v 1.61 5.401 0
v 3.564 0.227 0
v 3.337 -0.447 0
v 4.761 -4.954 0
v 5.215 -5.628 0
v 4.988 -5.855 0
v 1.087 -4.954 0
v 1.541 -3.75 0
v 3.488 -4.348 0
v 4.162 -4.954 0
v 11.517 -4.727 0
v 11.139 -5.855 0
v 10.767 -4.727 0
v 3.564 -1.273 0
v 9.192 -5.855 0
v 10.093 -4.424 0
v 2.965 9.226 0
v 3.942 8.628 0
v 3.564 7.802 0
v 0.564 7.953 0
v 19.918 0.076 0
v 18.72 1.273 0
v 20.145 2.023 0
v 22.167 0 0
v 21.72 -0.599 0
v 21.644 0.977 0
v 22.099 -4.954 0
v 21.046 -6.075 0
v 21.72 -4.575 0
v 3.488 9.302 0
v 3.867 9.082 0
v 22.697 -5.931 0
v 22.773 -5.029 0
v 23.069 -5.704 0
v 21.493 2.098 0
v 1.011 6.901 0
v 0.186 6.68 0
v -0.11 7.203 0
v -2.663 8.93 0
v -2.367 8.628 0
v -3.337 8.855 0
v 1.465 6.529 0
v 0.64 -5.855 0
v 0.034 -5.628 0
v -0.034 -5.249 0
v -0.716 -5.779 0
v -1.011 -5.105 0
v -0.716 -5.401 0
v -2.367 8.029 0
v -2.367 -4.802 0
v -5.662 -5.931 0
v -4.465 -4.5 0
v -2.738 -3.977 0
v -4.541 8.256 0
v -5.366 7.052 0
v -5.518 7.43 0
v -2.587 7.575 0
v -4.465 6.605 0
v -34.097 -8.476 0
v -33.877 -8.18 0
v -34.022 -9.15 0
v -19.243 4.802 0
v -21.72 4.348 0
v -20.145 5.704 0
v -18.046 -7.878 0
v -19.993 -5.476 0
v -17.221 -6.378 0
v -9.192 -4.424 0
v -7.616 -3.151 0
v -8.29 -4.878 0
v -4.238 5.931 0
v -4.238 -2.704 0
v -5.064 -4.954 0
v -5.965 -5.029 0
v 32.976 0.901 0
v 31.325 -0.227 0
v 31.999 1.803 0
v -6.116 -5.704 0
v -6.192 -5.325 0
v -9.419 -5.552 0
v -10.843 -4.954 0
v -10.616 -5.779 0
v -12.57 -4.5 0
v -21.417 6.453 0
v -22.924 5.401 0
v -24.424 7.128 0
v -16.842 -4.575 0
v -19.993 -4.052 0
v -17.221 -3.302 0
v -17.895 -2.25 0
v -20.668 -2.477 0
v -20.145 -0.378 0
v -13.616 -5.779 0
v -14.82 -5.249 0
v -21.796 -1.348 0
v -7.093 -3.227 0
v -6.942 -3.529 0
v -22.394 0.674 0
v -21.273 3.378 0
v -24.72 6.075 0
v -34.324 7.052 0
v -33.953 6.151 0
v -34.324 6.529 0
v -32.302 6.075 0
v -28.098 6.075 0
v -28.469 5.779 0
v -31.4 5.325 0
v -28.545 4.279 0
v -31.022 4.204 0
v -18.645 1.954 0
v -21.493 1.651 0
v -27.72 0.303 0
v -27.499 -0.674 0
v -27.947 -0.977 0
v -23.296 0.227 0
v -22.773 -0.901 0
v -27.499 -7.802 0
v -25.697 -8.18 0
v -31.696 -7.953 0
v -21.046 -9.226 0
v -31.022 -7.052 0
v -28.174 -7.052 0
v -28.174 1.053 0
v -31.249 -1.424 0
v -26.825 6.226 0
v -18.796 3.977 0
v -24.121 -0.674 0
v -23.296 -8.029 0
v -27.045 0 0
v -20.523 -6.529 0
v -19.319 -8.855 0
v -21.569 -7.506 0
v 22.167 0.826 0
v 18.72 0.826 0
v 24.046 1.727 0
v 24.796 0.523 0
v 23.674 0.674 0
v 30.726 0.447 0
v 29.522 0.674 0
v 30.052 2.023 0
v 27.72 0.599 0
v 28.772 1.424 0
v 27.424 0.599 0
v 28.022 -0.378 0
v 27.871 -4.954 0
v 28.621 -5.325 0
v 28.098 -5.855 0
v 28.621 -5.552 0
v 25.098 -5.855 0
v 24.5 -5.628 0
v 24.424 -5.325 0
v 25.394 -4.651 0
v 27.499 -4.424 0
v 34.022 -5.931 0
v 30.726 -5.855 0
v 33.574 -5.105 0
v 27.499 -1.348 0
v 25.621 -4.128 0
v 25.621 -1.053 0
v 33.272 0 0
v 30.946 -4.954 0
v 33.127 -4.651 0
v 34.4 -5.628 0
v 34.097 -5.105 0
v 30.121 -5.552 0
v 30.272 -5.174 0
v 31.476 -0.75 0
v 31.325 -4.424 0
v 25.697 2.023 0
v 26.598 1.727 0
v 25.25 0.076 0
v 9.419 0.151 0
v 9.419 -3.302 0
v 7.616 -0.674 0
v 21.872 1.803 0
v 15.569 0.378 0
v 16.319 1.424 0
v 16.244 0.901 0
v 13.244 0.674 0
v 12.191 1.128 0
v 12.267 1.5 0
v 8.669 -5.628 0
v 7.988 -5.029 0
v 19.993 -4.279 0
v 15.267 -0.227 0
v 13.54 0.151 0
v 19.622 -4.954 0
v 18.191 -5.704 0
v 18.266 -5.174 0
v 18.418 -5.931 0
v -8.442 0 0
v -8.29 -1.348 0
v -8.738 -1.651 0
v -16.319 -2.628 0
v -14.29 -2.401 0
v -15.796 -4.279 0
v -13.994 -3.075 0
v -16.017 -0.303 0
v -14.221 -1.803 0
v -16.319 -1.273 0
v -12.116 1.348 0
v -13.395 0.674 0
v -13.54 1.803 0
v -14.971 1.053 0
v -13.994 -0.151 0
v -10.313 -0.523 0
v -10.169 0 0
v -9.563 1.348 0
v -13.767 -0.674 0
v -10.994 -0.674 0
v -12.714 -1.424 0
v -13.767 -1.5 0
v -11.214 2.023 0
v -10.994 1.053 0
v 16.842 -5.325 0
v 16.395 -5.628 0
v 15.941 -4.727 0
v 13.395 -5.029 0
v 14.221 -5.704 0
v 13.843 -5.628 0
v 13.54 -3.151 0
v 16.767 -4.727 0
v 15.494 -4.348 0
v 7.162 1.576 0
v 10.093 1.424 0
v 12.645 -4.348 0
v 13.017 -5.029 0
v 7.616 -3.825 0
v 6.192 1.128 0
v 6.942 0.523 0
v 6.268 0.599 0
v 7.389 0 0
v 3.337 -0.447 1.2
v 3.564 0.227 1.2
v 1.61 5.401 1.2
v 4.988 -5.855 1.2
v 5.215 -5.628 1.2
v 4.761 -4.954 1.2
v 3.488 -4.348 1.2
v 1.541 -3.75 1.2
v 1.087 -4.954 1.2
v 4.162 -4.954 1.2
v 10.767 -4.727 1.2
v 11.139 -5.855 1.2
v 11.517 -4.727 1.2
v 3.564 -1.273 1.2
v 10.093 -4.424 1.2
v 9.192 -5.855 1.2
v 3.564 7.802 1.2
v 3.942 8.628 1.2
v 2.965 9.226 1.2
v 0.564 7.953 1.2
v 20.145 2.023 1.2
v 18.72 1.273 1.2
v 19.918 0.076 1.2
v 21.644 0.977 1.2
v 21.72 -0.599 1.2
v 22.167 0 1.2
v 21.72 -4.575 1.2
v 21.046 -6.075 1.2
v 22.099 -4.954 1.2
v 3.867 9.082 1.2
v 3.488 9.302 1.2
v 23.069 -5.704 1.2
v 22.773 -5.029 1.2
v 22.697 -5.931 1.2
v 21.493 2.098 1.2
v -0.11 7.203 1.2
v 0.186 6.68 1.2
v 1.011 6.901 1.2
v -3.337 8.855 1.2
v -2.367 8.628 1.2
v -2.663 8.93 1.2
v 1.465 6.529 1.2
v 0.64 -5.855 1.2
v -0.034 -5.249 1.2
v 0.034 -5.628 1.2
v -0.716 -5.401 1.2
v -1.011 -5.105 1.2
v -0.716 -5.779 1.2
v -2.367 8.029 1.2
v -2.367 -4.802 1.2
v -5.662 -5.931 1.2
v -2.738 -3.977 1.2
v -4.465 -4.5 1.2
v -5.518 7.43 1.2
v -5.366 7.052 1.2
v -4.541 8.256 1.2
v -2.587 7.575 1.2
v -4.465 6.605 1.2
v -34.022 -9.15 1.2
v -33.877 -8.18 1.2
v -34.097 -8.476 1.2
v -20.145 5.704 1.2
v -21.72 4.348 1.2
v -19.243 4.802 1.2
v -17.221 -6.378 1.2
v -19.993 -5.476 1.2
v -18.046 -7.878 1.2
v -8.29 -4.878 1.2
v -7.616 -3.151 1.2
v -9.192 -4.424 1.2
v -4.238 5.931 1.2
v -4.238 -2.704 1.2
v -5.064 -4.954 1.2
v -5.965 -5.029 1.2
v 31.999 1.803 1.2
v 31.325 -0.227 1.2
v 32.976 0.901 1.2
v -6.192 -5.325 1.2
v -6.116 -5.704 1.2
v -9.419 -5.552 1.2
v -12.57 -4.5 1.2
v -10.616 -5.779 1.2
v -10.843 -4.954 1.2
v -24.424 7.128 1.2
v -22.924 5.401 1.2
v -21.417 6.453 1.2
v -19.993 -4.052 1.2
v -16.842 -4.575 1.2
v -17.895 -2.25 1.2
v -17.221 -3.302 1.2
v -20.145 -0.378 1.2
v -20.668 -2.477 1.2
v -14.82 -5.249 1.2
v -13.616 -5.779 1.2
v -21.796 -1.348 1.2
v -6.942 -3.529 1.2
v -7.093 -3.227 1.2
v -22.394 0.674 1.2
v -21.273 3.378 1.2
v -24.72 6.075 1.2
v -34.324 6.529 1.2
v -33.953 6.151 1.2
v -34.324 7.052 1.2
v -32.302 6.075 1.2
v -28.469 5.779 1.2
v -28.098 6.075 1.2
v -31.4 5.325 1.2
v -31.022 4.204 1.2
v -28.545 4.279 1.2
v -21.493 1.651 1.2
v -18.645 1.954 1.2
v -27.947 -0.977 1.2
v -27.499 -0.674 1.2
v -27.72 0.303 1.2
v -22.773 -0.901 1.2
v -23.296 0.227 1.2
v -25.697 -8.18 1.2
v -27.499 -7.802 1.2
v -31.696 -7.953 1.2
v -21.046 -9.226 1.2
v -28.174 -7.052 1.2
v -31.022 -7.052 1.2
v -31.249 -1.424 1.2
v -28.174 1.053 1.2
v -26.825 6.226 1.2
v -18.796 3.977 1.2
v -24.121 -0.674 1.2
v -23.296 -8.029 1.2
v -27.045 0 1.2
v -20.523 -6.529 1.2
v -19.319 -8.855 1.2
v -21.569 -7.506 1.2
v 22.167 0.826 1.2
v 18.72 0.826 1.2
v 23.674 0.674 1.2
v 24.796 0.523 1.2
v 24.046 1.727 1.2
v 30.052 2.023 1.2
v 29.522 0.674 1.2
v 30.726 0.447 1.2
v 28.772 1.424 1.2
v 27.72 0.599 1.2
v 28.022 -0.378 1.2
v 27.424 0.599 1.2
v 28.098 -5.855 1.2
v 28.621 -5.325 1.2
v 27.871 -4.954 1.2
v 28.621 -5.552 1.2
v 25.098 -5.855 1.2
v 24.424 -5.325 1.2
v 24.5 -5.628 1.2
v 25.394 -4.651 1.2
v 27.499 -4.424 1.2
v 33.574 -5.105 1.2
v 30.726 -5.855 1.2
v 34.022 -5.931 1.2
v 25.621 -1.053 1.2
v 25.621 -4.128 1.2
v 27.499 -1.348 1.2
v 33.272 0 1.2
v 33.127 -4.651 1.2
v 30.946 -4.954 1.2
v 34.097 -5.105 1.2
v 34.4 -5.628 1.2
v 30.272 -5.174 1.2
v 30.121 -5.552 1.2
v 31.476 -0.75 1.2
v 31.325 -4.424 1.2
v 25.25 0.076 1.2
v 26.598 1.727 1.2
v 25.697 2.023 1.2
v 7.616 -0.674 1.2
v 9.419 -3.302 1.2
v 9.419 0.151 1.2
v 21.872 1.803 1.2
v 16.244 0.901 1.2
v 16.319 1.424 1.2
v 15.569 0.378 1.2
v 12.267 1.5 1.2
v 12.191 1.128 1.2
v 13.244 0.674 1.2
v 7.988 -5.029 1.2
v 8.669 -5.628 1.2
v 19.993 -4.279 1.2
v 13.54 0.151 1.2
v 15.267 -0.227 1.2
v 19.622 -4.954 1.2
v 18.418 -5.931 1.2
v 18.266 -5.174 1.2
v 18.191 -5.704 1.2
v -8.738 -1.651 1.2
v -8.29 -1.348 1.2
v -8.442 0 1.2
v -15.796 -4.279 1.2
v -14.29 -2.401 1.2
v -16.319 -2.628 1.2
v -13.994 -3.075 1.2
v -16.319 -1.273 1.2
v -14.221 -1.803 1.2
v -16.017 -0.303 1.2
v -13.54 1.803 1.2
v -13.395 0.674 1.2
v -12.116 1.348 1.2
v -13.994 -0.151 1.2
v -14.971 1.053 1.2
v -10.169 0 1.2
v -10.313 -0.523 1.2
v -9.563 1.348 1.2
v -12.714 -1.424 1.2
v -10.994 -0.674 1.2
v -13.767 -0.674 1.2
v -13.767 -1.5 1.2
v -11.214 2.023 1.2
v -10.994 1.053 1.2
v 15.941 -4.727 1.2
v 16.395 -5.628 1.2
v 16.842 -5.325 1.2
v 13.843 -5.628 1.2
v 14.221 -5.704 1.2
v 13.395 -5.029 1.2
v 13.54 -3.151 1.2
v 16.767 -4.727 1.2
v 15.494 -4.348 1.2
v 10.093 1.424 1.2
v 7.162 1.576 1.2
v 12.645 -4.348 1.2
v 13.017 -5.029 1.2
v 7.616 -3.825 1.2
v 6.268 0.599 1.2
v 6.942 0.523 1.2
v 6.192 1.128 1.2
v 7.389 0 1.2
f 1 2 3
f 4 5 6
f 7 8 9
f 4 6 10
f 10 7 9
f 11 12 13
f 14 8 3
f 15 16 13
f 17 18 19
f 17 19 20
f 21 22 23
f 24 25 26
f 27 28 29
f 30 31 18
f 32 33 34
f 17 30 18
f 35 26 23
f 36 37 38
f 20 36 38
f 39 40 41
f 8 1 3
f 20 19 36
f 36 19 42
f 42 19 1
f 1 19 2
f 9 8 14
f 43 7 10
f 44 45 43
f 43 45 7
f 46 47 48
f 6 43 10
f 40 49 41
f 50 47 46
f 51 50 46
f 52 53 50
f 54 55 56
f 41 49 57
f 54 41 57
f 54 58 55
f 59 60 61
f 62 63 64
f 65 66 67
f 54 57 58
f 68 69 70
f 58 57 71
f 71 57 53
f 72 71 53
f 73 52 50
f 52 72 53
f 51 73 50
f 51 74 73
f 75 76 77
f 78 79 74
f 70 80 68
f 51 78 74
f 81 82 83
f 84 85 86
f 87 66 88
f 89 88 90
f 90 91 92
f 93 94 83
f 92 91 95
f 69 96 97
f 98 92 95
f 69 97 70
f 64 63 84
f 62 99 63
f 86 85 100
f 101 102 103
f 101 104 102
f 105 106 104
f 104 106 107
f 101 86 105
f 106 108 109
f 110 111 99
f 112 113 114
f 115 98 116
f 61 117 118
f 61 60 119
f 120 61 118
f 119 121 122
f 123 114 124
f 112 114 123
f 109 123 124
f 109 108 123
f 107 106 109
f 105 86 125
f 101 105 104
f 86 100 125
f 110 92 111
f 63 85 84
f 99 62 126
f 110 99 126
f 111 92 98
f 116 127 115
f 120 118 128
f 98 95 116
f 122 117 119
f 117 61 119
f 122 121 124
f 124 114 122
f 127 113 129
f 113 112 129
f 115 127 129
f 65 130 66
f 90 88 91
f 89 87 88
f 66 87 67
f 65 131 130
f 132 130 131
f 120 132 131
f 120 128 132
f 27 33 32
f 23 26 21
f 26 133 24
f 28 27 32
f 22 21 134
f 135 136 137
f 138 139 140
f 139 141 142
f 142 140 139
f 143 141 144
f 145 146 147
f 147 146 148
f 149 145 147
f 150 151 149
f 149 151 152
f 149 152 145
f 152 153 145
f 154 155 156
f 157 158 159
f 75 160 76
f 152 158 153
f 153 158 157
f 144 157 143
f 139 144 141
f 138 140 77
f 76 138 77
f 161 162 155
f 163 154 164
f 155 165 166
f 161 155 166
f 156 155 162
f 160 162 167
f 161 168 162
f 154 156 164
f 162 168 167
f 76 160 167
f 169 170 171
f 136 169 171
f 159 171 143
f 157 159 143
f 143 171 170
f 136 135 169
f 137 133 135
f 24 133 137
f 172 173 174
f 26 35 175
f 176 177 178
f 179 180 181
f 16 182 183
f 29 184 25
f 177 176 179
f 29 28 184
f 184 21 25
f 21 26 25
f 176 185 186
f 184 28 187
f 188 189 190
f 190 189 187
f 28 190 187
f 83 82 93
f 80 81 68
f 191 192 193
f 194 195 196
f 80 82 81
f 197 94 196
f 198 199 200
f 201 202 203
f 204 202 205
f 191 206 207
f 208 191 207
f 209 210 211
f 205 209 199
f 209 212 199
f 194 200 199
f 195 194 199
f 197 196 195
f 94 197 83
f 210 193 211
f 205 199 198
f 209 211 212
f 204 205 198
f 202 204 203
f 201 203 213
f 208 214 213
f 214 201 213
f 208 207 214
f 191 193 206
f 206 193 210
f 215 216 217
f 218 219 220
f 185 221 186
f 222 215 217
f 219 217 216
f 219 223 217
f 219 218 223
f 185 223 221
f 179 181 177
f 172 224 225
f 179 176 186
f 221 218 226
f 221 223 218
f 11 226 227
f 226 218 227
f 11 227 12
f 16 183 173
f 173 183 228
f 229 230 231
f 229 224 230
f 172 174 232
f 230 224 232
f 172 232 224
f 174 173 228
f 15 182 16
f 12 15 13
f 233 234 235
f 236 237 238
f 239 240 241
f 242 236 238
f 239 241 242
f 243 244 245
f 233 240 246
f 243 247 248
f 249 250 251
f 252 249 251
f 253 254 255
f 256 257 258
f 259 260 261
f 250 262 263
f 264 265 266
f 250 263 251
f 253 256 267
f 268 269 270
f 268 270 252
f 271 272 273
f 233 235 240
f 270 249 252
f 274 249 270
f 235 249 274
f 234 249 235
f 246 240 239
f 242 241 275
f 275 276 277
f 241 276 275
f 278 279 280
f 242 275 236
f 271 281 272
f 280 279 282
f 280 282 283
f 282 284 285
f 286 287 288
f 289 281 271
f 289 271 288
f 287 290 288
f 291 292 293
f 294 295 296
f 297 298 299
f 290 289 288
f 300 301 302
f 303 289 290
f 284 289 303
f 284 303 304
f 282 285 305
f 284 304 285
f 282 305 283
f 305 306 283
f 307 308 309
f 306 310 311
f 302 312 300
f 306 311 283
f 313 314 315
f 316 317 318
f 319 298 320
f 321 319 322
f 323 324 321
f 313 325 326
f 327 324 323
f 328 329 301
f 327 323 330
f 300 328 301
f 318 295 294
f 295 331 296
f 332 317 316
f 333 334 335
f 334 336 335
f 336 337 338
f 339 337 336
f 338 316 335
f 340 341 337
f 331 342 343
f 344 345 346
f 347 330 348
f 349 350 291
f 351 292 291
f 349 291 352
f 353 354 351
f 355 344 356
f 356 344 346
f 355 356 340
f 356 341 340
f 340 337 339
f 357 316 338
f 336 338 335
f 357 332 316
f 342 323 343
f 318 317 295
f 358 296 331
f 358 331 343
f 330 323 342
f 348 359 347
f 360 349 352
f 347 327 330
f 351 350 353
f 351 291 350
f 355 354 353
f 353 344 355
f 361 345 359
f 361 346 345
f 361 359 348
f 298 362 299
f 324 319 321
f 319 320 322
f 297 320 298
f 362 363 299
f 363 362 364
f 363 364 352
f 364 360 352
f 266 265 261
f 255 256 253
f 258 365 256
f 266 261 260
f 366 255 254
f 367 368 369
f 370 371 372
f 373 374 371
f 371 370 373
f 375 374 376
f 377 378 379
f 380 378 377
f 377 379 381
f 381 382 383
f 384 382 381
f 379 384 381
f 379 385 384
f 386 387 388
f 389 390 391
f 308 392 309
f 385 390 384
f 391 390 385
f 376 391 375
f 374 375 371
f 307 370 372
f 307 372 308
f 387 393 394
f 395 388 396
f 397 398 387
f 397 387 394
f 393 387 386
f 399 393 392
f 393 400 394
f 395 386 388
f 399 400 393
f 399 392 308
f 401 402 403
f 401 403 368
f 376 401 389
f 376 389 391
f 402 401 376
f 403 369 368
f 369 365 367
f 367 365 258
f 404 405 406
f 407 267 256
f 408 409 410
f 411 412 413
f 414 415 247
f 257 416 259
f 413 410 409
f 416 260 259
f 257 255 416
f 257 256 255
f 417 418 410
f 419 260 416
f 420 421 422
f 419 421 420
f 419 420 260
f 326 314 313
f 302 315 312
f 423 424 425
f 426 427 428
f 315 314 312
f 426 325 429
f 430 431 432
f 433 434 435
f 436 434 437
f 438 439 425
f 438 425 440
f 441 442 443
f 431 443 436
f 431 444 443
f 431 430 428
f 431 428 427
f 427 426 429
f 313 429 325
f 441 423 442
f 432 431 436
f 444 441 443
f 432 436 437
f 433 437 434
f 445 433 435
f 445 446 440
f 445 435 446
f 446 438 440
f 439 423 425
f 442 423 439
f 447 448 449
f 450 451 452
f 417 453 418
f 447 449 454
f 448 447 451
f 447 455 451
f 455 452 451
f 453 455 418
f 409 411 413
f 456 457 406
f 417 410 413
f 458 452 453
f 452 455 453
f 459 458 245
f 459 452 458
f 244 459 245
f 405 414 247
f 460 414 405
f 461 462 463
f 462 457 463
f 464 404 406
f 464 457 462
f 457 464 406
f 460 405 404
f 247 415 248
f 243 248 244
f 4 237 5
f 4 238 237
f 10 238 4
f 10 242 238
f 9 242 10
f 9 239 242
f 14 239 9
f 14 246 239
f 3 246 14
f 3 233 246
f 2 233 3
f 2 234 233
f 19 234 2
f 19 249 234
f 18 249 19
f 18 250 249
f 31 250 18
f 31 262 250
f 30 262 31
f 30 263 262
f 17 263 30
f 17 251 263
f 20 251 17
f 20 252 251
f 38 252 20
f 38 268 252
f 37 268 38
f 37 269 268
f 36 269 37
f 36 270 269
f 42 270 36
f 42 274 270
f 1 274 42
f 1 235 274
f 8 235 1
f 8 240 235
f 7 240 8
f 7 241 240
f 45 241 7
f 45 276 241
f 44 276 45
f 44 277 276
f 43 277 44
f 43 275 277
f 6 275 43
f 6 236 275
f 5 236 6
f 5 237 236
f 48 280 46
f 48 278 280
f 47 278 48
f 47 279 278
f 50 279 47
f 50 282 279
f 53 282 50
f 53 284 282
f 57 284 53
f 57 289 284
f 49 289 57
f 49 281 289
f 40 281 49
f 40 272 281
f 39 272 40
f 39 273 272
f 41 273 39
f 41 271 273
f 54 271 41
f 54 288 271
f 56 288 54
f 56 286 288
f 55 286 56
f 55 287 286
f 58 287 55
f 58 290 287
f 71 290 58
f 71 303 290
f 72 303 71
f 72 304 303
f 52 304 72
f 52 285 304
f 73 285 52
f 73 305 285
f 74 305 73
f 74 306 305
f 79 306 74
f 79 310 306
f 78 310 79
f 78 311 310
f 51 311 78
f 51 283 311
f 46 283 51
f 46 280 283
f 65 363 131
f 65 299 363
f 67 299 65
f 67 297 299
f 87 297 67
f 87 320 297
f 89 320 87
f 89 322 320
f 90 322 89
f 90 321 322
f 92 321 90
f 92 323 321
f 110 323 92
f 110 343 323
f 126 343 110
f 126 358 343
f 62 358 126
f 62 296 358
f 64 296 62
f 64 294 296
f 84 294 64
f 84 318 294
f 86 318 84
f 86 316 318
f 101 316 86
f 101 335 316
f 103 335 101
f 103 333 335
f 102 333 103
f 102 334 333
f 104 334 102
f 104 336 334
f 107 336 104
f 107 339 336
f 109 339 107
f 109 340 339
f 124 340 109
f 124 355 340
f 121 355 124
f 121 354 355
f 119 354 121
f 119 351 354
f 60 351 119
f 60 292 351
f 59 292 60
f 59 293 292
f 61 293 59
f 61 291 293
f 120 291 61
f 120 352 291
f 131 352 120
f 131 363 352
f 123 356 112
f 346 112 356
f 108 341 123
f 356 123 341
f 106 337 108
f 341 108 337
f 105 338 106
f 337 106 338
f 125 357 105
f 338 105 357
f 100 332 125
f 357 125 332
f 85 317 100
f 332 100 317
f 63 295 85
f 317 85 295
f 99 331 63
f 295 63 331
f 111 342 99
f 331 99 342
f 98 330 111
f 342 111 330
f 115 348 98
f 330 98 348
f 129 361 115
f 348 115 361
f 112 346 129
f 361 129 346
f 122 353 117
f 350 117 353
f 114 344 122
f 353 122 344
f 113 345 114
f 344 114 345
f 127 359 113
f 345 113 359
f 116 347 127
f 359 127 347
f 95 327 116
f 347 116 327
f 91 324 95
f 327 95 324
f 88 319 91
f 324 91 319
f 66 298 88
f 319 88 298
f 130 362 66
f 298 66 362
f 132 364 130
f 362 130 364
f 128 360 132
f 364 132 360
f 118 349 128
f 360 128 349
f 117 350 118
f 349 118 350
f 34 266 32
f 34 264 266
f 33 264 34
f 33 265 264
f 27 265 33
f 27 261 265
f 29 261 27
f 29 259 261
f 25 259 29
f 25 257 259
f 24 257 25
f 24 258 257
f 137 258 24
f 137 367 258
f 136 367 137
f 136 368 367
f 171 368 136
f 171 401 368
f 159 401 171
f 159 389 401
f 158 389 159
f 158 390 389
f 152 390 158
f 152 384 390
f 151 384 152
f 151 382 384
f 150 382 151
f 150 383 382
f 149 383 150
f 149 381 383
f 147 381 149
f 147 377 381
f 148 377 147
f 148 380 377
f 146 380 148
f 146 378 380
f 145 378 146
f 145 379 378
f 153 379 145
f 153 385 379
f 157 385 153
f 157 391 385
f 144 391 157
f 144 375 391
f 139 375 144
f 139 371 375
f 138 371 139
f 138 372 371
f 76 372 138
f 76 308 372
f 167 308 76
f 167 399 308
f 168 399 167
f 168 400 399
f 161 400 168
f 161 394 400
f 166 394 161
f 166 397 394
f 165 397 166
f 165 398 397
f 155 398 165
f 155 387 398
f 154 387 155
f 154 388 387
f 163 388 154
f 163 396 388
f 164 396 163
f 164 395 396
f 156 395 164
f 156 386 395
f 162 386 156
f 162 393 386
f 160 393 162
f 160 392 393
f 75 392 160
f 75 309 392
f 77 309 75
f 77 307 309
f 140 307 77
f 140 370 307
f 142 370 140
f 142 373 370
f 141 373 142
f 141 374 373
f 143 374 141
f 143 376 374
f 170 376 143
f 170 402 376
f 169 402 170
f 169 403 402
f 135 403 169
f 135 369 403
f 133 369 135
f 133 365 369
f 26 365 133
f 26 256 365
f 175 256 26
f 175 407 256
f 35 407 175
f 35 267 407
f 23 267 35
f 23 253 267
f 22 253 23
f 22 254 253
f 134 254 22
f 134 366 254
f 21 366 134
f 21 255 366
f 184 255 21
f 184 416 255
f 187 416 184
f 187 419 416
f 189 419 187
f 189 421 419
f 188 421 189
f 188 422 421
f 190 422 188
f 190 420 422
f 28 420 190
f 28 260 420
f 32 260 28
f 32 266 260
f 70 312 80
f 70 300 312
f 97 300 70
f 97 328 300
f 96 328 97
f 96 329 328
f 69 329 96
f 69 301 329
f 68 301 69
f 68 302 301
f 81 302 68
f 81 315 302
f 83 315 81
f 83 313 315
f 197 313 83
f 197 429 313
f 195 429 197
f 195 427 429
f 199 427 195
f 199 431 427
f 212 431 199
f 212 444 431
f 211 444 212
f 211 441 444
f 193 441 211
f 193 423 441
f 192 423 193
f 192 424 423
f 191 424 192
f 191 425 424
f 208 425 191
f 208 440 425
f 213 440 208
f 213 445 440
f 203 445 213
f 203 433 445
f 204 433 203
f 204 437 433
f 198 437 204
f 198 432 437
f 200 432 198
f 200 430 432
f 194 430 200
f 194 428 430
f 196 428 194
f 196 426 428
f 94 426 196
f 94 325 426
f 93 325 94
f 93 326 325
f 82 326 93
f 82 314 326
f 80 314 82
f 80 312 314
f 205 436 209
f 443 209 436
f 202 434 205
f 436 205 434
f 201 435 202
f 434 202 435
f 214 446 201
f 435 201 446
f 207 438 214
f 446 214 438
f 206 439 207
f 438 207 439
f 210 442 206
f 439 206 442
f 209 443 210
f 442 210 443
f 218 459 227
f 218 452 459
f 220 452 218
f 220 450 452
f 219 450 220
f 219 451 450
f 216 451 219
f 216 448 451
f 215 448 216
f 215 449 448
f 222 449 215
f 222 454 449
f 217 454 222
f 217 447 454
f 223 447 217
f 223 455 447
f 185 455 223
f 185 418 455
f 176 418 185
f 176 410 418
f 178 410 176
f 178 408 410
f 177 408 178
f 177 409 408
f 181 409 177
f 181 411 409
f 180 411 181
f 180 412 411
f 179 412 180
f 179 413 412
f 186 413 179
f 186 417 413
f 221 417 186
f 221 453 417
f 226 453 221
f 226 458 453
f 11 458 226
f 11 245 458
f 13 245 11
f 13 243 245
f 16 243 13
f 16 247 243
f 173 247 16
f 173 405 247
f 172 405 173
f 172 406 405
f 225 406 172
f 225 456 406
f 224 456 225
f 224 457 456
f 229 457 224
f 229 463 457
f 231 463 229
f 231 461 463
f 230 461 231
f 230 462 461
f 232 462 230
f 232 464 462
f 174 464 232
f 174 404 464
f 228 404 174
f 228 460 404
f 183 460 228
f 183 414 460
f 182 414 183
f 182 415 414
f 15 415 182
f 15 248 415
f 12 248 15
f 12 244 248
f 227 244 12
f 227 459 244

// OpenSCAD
// file: bellum_text_traced.scad
// bellum_text_traced.scad
// "Bellum" lettering traced from the source logo image with
// OpenCV (4x cubic upscale, threshold, morphological cleanup,
// approxPolyDP 2px). Coordinates are centered, Y-up, and
// normalized to 100 units of total width.
// Regenerate with scratchpad/trace2_emit.py if retuning.

module bellum_traced_2d() {
    polygon(points=[[-49.89,10.25],[-49.89,9.49],[-49.35,8.94],[-46.95,8.83],[-45.64,7.74],[-45.09,6.11],[-45.42,-2.07],[-45.09,-10.25],[-46.07,-11.56],[-49.24,-11.89],[-49.56,-12.32],[-49.45,-13.30],[-30.59,-13.41],[-28.08,-12.87],[-26.23,-11.45],[-25.03,-9.27],[-24.48,-6.65],[-25.03,-4.80],[-26.01,-3.27],[-29.28,-0.55],[-27.10,2.84],[-27.32,5.78],[-27.97,6.98],[-29.28,8.29],[-31.13,9.38],[-35.50,10.36],[-40.62,-1.42],[-39.97,-0.98],[-35.06,-0.98],[-33.10,-1.31],[-31.68,-1.96],[-30.04,-3.60],[-29.06,-5.89],[-29.06,-7.96],[-29.83,-9.49],[-31.35,-10.91],[-33.86,-11.67],[-37.35,-11.89],[-39.97,-11.34],[-40.95,-10.25],[-41.38,8.40],[-40.84,8.83],[-38.99,9.05],[-35.93,8.83],[-33.32,7.85],[-31.57,6.32],[-30.92,4.91],[-31.24,2.40],[-32.55,0.98],[-33.86,0.33],[-39.31,0.00],[-40.29,0.44],[-40.95,1.53],[-41.49,6.22]], paths=[[0, 1, 2, 3, 4, 5, 6, 7, 8, 9, 10, 11, 12, 13, 14, 15, 16, 17, 18, 19, 20, 21, 22, 23, 24, 25], [26, 27, 28, 29, 30, 31, 32, 33, 34, 35, 36, 37, 38, 39], [40, 41, 42, 43, 44, 45, 46, 47, 48, 49, 50, 51, 52, 53]]);
    polygon(points=[[-21.76,1.53],[-23.28,-0.44],[-23.72,-1.85],[-23.72,-3.82],[-22.96,-6.22],[-21.54,-7.63],[-19.79,-8.40],[-15.43,-8.40],[-13.69,-8.07],[-12.05,-7.09],[-10.09,-5.13],[-10.31,-4.69],[-11.07,-4.58],[-13.36,-6.43],[-15.76,-7.20],[-18.27,-6.54],[-20.34,-4.47],[-20.77,-3.49],[-20.67,-2.62],[-20.01,-2.18],[-18.48,-2.07],[-12.70,-2.40],[-12.05,-1.96],[-12.27,0.00],[-13.90,1.96],[-16.30,2.94],[-19.68,2.62],[-20.34,-0.22],[-19.47,0.98],[-17.61,1.96],[-15.98,1.53],[-14.78,0.00],[-14.99,-0.76],[-15.98,-0.98],[-20.01,-0.98]], paths=[[0, 1, 2, 3, 4, 5, 6, 7, 8, 9, 10, 11, 12, 13, 14, 15, 16, 17, 18, 19, 20, 21, 22, 23, 24, 25, 26], [27, 28, 29, 30, 31, 32, 33, 34]]);
    polygon(points=[[-3.87,12.98],[-4.85,12.87],[-6.60,12.00],[-8.02,10.80],[-7.80,10.25],[-6.49,9.60],[-6.16,8.62],[-6.16,-3.93],[-6.49,-6.54],[-7.36,-7.20],[-8.67,-7.31],[-9.00,-7.74],[-8.89,-8.29],[-8.23,-8.62],[-1.04,-8.40],[-1.04,-7.85],[-1.47,-7.42],[-3.44,-6.98],[-3.98,-5.78],[-3.76,11.01],[-3.44,11.67],[-3.44,12.54]], paths=[[0, 1, 2, 3, 4, 5, 6, 7, 8, 9, 10, 11, 12, 13, 14, 15, 16, 17, 18, 19, 20, 21]]);
    polygon(points=[[5.07,13.52],[4.31,13.41],[0.82,11.56],[-0.16,10.47],[0.27,9.71],[1.47,10.03],[2.13,9.49],[2.34,7.85],[2.24,-5.45],[1.58,-7.20],[-0.05,-7.63],[0.05,-8.18],[0.93,-8.51],[7.25,-8.51],[7.58,-8.18],[6.92,-7.20],[6.05,-7.20],[5.07,-6.32],[5.18,-1.85],[4.85,-0.65],[5.18,0.33],[5.18,11.34],[5.73,12.54],[5.62,13.20]], paths=[[0, 1, 2, 3, 4, 5, 6, 7, 8, 9, 10, 11, 12, 13, 14, 15, 16, 17, 18, 19, 20, 21, 22, 23]]);
    polygon(points=[[9.00,1.64],[9.11,0.87],[10.09,0.76],[10.74,0.00],[11.07,-0.98],[11.07,-5.56],[11.61,-7.31],[12.60,-8.18],[13.36,-8.51],[16.19,-8.51],[18.92,-7.31],[19.47,-7.31],[20.12,-8.18],[20.67,-8.29],[23.83,-8.18],[24.48,-7.74],[24.37,-6.87],[23.17,-6.87],[22.52,-6.32],[22.19,-0.33],[22.63,0.55],[23.61,1.31],[23.72,2.07],[17.83,2.18],[17.72,1.64],[19.25,0.98],[19.68,0.22],[19.68,-4.58],[18.38,-6.32],[16.74,-6.87],[15.65,-6.87],[14.67,-6.43],[13.69,-4.80],[13.69,0.22],[14.67,2.07],[10.41,2.29]], paths=[[0, 1, 2, 3, 4, 5, 6, 7, 8, 9, 10, 11, 12, 13, 14, 15, 16, 17, 18, 19, 20, 21, 22, 23, 24, 25, 26, 27, 28, 29, 30, 31, 32, 33, 34, 35]]);
    polygon(points=[[27.21,1.85],[27.21,1.20],[28.95,0.11],[29.06,-6.22],[28.52,-7.20],[26.55,-7.52],[26.44,-8.29],[26.77,-8.62],[30.59,-8.83],[32.99,-8.62],[33.53,-8.29],[33.10,-7.31],[32.12,-7.20],[31.57,-6.65],[31.57,-0.87],[32.22,0.00],[34.41,0.98],[36.04,0.76],[36.70,0.11],[37.24,-1.53],[37.24,-6.00],[36.91,-6.76],[35.50,-7.74],[35.61,-8.18],[36.48,-8.51],[40.84,-8.51],[41.60,-8.07],[41.60,-7.74],[40.51,-7.20],[39.97,-6.43],[39.97,-1.96],[40.73,-0.55],[42.91,0.98],[44.66,0.65],[45.53,-0.33],[45.75,-1.09],[45.53,-6.43],[44.98,-7.20],[44.00,-7.52],[43.78,-8.07],[44.66,-8.51],[49.45,-8.62],[50.00,-8.18],[49.56,-7.42],[48.80,-7.42],[48.15,-6.76],[48.36,0.00],[47.93,1.31],[46.51,2.62],[43.68,2.94],[41.82,2.07],[40.29,0.87],[39.86,0.87],[38.66,2.51],[37.35,2.94],[34.95,2.51],[32.22,1.20],[31.46,1.42],[31.79,2.62],[31.24,3.05],[29.28,2.94]], paths=[[0, 1, 2, 3, 4, 5, 6, 7, 8, 9, 10, 11, 12, 13, 14, 15, 16, 17, 18, 19, 20, 21, 22, 23, 24, 25, 26, 27, 28, 29, 30, 31, 32, 33, 34, 35, 36, 37, 38, 39, 40, 41, 42, 43, 44, 45, 46, 47, 48, 49, 50, 51, 52, 53, 54, 55, 56, 57, 58, 59, 60]]);
}

bellum_traced_2d();
// file: bellum_badge_003.scad
// bellum_badge_003.scad
// v003: corrected layout, measured from the source photo. The design is
//   ONE continuous 45-degree checkerboard filling the whole circle with
//   thin white grout lines and a black tile at dead center - v001/v002's
//   "inner bordered diamond on a solid black ring" was a misreading of
//   the photo (the "border" was grout diagonals, the "black ring" was
//   glare on the glossy button). Proportions from the photo: tile pitch
//   ~0.162 D, grout ~0.008 D, text width ~0.86 D, centered.
// v002: "Bellum" lettering traced from the photo (bellum_text_traced.scad).
//
// Printable parts (print in the named color, glue together):
//   base_disc()          black - 3 mm circle; shows through the lattice
//                        holes as the black tiles
//   white_lattice()      white - 2 mm circle-wide lattice: white tiles +
//                        grout webs, one connected piece
//   black_tiles()        black - optional drop-ins for the full (unclipped)
//                        black tiles, if you want them flush
//   text_plate_black()   black - outline plate behind the letters
//   text_letters_white() white - "Bellum" letters (6 pieces), glue on plate
//
// Everything scales from badge_d; thicknesses and clearance are absolute.

$fa = 2;
$fs = 0.4;

// ---- scale ----
badge_d = 80;       // badge diameter: THE scale knob

// ---- thicknesses (absolute mm, independent of badge_d) ----
t_base = 3;         // black disc
t_top  = 2;         // white lattice and drop-in tiles (total badge = 5)
t_text = 1.2;       // each text layer (plate and letters)
clr    = 0.15;      // per-side XY clearance for the drop-in tiles

// ---- proportions (fractions of badge_d, measured from the photo) ----
pitch_frac = 0.162;                     // checker pitch (tile + grout)
grout_w   = max(0.008 * badge_d, 0.8);  // white web between tiles
text_w    = 0.86 * badge_d;             // width of "Bellum"
outline_w = max(0.015 * badge_d, 1.2);  // black outline around the letters

use <bellum_text_traced.scad>  // lettering traced from the logo photo

// ---- derived ----
R     = badge_d / 2;
pitch = pitch_frac * badge_d;
tile  = pitch - grout_w;                // black/white tile side
half_diag = tile / sqrt(2);             // rotated tile half-diagonal
range = ceil(R / pitch) + 1;

eps = 0.01;

// ---------------- 2D shapes ----------------

// black tile centers: (i+j) even puts a black tile at the exact center
module black_squares_2d(shrink = 0) {
    rotate(45)
        for (i = [-range : range], j = [-range : range])
            if ((i + j) % 2 == 0)
                translate([i * pitch, j * pitch])
                    square(tile - 2 * shrink, center = true);
}

// white tiles + grout webs across the whole circle, one connected piece
module lattice_2d() {
    difference() {
        circle(R);
        black_squares_2d();
    }
}

// traced lettering is normalized to 100 units wide, centered
module text_2d() {
    scale(text_w / 100) bellum_traced_2d();
}

// ---------------- printable parts (each flat on Z=0) ----------------

module base_disc() {
    linear_extrude(t_base) circle(R);
}

module white_lattice() {
    linear_extrude(t_top) lattice_2d();
}

// optional flush inlays for the black tiles that lie fully inside the rim
module black_tiles() {
    rotate(45)
        for (i = [-range : range], j = [-range : range])
            if ((i + j) % 2 == 0
                && norm([i, j]) * pitch + half_diag <= R - 1)
                translate([i * pitch, j * pitch])
                    linear_extrude(t_top)
                        square(tile - 2 * clr, center = true);
}

module text_plate_black() {
    linear_extrude(t_text) offset(r = outline_w) text_2d();
}

module text_letters_white() {
    linear_extrude(t_text) text_2d();
}

// ---------------- assembled preview ----------------

module assembly() {
    color([0.15, 0.15, 0.15]) base_disc();
    color("white") translate([0, 0, t_base]) white_lattice();
    color([0.15, 0.15, 0.15]) translate([0, 0, t_base + t_top])
        text_plate_black();
    color("white") translate([0, 0, t_base + t_top + t_text])
        text_letters_white();
}

assembly();
// main file
// bellum_badge_003_text_white.scad - print in WHITE
// "Bellum" letters. Glue onto the black outline plate.
use <bellum_badge_003.scad>
text_letters_white();
